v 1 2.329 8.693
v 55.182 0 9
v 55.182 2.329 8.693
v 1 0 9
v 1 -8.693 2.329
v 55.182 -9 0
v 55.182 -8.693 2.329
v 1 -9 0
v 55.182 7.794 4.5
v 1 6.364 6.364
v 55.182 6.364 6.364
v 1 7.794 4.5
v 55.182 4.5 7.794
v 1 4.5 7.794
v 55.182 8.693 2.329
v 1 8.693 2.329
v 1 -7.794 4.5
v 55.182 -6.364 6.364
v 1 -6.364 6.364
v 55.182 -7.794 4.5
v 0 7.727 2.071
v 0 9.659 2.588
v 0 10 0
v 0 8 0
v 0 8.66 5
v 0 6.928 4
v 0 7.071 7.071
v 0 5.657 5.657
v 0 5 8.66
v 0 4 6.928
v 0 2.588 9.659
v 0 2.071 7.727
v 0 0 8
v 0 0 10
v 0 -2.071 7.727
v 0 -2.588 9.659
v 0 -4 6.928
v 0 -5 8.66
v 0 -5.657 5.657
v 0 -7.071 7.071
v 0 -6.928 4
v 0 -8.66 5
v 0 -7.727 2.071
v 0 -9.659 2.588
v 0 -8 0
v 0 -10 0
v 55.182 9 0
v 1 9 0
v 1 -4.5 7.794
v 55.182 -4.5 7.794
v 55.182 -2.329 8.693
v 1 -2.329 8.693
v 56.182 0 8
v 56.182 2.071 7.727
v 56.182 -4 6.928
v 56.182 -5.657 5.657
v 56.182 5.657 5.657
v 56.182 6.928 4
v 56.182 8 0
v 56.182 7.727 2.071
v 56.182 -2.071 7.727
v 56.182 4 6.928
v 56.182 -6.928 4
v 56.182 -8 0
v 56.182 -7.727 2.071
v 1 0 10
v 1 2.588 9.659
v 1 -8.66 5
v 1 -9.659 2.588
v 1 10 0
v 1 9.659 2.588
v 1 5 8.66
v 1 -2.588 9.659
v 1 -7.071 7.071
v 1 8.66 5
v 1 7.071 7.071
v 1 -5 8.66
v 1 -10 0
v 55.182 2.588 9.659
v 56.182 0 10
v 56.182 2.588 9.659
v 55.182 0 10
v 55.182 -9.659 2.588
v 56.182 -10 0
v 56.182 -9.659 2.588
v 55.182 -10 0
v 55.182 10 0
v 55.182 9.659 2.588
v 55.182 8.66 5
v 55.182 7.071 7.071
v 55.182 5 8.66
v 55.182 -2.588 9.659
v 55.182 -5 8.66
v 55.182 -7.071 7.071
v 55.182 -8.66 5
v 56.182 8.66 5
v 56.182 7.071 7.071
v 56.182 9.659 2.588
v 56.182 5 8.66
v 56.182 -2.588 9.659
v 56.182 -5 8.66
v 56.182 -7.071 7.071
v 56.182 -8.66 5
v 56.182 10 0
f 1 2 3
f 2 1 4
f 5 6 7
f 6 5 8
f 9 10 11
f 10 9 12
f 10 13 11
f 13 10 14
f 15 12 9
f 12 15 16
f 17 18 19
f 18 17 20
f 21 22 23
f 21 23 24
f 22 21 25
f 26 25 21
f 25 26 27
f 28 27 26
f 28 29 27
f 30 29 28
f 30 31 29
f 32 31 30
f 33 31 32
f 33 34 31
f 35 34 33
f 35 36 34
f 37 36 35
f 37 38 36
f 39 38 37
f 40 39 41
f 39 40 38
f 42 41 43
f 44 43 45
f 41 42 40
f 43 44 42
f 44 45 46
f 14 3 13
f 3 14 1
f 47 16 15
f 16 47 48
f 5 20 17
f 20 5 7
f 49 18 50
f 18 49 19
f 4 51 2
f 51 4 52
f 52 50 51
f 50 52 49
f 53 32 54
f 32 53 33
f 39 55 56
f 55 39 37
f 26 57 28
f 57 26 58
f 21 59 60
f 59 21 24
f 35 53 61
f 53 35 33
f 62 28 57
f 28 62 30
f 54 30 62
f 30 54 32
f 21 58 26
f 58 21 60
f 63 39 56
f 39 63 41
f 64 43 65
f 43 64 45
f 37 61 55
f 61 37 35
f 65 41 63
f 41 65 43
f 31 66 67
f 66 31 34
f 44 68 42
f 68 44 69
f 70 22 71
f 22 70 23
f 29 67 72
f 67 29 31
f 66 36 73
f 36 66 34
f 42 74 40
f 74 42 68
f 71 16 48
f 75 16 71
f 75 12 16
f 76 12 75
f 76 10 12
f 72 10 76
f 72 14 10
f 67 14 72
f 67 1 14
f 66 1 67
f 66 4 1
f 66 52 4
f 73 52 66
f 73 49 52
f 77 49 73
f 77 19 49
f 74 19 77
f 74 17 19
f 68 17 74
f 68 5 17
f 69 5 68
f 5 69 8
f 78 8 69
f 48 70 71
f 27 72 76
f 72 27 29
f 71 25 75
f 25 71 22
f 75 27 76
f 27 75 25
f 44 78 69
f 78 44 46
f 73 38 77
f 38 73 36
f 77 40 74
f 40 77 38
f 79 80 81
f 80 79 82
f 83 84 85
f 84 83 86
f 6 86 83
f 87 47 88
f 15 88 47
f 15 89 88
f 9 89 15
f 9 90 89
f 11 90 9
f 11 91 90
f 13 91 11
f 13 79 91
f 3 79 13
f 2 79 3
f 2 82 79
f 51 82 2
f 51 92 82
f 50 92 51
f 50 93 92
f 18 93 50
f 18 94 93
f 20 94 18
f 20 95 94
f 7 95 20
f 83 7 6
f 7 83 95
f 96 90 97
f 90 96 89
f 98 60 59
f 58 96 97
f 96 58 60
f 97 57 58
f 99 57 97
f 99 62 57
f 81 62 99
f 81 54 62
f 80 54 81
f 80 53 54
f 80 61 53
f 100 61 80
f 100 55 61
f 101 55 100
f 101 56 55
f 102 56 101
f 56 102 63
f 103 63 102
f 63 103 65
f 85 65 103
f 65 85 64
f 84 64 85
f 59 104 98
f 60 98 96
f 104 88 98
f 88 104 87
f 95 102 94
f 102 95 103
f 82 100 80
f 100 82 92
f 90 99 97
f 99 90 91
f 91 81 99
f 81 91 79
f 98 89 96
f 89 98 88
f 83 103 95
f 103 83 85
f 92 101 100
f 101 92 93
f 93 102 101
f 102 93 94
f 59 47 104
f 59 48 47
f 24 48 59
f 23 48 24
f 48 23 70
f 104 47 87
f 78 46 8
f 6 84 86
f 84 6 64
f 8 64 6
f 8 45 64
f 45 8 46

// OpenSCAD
// file: ../build_environments.scad
// build_environments.scad: modules to build level sections
//

module pool(diameter=10.0, wall_height=2.0, step_width=3.0, connections=[])
{
    difference() {
        union() {
        difference() {
            cylinder(h=0.5,r1=diameter+step_width,r2=diameter+step_width,$fn=48);
            translate([0,0,-0.1])
                cylinder(h=0.7,r1=diameter,r2=diameter,$fn=48);
        }
        difference() {
            cylinder(h=wall_height,r1=diameter+step_width+1.0,r2=diameter+step_width+1.0,$fn=48);
            translate([0,0,-0.1])
                cylinder(h=wall_height+0.2,r1=diameter+step_width,r2=diameter+step_width,$fn=48);
        }
        }
    
        for (c = connections)
        {
            rotate([0,90,0]) {
                angle = atan2(c[1],c[0]);
                rotate([-angle,0,0]) {
                    cylinder(h=diameter+5.0,r1=c[2],r2=c[2],$fn=48);
                }
            }
        }
    }
}

module straight(length=10.0, width=2.0, dy1=0.0, dy2=0.0, dz=0.0)
{
    dims = [0, 0, 0, 0, 0, (dz/length)];
    matrix = [
        [ 1, dims[0], dims[1], 0 ],
        [ dims[2], 1, dims[4], 0 ],
        [ dims[5], dims[3], 1, 0 ],
        [ 0, 0, 0, 1 ]
    ];
    multmatrix(matrix)
    difference() {
        translate([dy1,0,0])
        union() {
            rotate([0,90,0]) {
                difference() {
                    cylinder(h=(length-dy1-dy2),r1=width+1.0,r2=width+1.0,$fn=24);
                    translate([0,0,-0.1])
                        cylinder(h=(length-dy1-dy2+0.2),r1=width,r2=width,$fn=24);
                }
                difference() {
                    cylinder(h=1.0,r1=width+2.0,r2=width+2.0,$fn=24);
                    translate([0,0,-0.1])
                        cylinder(h=1.2,r1=width,r2=width,$fn=24);
                }
                translate([0,0,(length-dy1-dy2)-1.0]) {
                    difference() {
                        cylinder(h=1.0,r1=width+2.0,r2=width+2.0,$fn=24);
                        translate([0,0,-0.1])
                            cylinder(h=1.2,r1=width,r2=width,$fn=24);
                    }
                }
            }
        }
        translate([0,0,-(2*width+4.0)/2])
            cube([3*length,3*length,2*width+4.0],center=true);
    }
}

module curve(p0=[0,0], center=[0,0], dir=1, angle=0.0, width=2.0)
{
    radius = sqrt((p0[0]-center[0])*(p0[0]-center[0]) + (p0[1]-center[1])*(p0[1]-center[1]));
    if (dir == 0) {
        difference() {
            rotate([0,0,-90])
            difference() {
                rotate_extrude(angle = angle, convexity = 10, $fn=32)
                    translate([radius, 0, 0])
                        circle(r = width+1.0,$fn=24);
                rotate([0,0,-1.0])
                    rotate_extrude(angle = angle+2.0, convexity = 10, $fn=32)
                        translate([radius, 0, 0])
                            circle(r = width,$fn=24);
            }
            translate([0,0,-(2*width+4.0)/2])
                cube([5*radius,5*radius,2*width+4.0],center=true);
        }
    }
    else {
        difference() {
            rotate([0,0,90])
            difference() {
                rotate_extrude(angle = -angle, convexity = 10, $fn=32)
                    translate([radius, 0, 0])
                        circle(r = width+1.0,$fn=24);
                rotate([0,0,1.0])
                    rotate_extrude(angle = -angle-2.0, convexity = 10, $fn=32)
                        translate([radius, 0, 0])
                            circle(r = width,$fn=24);
            }
            translate([0,0,-(2*width+4.0)/2])
                cube([5*radius,5*radius,2*width+4.0],center=true);
        }
    }

}

// test pool
//pool(diameter=12.0000, wall_height=3.0000, step_width=3.0000, connections=[[0.0000,-26.0000,2.0000], [23.6074,0.0000,2.0000]]);

// test straight, slope
//straight(length=26.0000, width=2.0000, dy1=11.8322, dy2=6.7082, dz=0.0000);
//straight(length=29.1549, width=12.0000, dy1=0.0000, dy2=0.0000, dz=-15.0000);

// test curve
//curve(p0=[23.6074, 0.0000], center=[23.6074, 5.0000], dir=0, angle=60.1011, width=2.0000);
//curve(p0=[33.6426, 12.4219], center=[37.9771, 9.9295], dir=1, angle=120.4627, width=2.0000);
// main file
use <../build_environments.scad>;
straight(length=56.1816, width=8.0000, dy1=0.0000, dy2=0.0000, dz=0.0000);
